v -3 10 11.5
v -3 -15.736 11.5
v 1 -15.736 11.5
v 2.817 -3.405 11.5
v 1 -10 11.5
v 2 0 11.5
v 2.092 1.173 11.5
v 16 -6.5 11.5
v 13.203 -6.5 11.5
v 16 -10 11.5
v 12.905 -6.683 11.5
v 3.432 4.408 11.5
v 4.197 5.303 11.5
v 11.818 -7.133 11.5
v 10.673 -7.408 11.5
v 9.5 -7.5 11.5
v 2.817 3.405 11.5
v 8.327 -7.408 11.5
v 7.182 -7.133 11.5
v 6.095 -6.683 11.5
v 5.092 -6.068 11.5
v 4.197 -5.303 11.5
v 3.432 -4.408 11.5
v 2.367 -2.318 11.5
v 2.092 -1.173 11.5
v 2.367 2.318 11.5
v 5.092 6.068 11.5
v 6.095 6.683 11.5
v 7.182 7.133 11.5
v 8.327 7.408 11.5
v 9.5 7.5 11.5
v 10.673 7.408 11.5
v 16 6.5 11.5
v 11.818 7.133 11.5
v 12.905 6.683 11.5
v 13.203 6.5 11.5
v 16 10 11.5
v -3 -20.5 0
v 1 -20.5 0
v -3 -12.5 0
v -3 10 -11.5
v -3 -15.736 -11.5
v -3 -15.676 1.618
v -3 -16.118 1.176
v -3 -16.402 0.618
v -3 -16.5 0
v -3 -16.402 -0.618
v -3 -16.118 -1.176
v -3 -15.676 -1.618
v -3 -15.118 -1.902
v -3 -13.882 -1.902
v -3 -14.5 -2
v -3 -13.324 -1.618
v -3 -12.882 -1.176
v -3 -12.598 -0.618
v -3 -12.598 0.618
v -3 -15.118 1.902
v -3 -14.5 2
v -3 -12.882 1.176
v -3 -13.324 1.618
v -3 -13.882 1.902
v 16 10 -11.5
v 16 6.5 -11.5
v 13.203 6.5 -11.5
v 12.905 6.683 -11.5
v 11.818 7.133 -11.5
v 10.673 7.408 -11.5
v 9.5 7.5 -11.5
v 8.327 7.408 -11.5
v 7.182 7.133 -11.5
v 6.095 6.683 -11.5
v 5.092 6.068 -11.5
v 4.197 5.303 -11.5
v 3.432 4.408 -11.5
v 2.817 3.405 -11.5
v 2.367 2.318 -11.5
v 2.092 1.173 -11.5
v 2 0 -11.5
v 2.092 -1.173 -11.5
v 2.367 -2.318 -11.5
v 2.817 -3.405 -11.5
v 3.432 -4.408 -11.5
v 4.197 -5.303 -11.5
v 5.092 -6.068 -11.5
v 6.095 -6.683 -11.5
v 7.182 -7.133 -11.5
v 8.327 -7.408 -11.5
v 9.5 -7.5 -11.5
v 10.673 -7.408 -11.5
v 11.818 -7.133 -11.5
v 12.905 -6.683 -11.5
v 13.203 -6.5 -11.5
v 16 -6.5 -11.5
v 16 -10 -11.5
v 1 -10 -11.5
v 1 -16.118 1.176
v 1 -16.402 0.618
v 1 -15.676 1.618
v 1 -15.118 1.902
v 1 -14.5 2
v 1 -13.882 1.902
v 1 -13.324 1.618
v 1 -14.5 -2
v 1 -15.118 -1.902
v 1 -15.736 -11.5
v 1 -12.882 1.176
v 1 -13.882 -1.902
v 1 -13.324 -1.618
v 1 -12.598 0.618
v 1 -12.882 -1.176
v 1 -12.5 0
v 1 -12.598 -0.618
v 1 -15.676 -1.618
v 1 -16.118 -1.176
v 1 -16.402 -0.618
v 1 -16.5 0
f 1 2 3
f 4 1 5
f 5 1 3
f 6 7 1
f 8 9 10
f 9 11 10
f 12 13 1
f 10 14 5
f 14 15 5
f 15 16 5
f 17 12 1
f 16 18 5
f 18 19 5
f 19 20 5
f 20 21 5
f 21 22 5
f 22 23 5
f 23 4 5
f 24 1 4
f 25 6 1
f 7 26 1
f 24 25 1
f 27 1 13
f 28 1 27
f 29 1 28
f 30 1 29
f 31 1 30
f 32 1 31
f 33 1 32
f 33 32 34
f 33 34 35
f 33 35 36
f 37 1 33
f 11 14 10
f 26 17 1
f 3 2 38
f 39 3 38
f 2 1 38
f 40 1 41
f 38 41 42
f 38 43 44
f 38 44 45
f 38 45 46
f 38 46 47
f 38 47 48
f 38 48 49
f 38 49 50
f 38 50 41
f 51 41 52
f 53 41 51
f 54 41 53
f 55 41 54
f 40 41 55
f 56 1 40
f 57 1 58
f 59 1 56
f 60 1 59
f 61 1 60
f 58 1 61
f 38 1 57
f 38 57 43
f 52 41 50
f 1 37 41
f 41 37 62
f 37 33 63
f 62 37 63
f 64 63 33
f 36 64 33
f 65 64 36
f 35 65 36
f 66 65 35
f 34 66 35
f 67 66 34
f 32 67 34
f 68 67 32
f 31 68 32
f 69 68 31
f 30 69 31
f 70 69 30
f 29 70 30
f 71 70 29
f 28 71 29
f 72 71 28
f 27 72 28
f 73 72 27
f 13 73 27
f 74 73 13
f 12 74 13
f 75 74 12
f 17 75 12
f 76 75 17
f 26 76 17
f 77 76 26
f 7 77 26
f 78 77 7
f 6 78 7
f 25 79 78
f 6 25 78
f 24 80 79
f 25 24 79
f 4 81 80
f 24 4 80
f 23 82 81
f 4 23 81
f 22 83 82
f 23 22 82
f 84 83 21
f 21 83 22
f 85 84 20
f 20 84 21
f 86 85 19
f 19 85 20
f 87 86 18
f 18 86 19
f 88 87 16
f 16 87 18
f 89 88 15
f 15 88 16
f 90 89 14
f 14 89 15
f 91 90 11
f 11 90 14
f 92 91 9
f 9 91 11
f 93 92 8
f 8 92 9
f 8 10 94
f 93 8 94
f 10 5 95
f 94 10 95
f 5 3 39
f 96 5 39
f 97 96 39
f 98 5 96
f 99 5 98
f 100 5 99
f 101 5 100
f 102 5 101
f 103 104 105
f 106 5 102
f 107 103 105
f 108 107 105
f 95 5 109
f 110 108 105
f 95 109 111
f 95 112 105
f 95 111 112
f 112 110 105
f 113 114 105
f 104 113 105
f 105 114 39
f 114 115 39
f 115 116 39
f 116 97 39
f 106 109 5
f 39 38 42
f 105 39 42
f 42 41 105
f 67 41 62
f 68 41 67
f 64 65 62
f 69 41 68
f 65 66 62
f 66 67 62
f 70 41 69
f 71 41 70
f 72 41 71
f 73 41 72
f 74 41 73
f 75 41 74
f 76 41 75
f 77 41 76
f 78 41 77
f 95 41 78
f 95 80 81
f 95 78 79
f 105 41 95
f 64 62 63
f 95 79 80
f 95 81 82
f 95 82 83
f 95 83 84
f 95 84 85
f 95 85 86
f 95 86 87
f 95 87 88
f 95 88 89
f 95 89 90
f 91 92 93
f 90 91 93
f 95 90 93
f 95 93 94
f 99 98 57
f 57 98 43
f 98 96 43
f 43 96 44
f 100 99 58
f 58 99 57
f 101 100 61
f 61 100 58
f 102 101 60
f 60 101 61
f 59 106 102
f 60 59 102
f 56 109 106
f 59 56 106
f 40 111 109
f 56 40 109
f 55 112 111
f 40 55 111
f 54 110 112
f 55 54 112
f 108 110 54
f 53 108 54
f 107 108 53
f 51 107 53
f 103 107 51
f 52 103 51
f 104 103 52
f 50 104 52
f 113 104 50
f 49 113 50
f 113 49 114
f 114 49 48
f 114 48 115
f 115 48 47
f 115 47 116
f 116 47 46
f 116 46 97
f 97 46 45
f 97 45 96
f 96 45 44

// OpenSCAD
// LM8UU bushing holder modified for its use in Cyclone PCB Factory
// Modified to have only one center screw

// Derived by Carlosgs from:

// LM8UU bushing holder
// http://www.thingiverse.com/thing:23041 by thantik
// Inspired/derived from:

//http://www.thingiverse.com/thing:14942
//Which is derived from:
// http://www.thingiverse.com/thing:14814
//And is a drop-in replacement for:
//http://www.thingiverse.com/thing:10287

// screw/nut dimensions
screw_dia = 4;
nut_dia = 8.5;
nut_height=2;

// main body dimensions
body_width = 20;
gap_width = 14;
body_height = 16;
body_length=23;
LM8UU_dia = 15.0;
screw_elevation = body_height-1.5;

//mounting plate dimensions
plate_height = 4;
plate_length=body_length;
plate_width=body_width+11;
screw_space_x = -14.5*2;
screw_space_y = 0;

module mount_plate()
{
	difference()
	{
		//bottom plate
		translate([-plate_width+body_width/2,-plate_length/2,-3])
			cube([plate_width,plate_length,plate_height]);

		//screw holes
		translate([screw_space_x/2,screw_space_y/2,-8.1])
			cylinder(r=screw_dia/2, h=plate_height+10, $fn=20);
//		translate([-screw_space_x/2,-screw_space_y/2,-8.1])
//			cylinder(r=screw_dia/2, h=plate_height+1, $fn=20);

		//nut traps


	}
}

module lm8uu_bearing_holder() {
	intersection() {
     rotate([90,0,90])
      difference()
		{
			union()
			{
				mount_plate();
		
				translate([-body_width/2,-body_length/2,0])
					cube([body_width,body_length,body_height]);
			}
		
			// bushing hole
			translate([0,0,LM8UU_dia/2+2])
				rotate([90,0,0])
					cylinder(r=LM8UU_dia/2, h=body_length+0.1, center=true, $fn=40);
		
			// top gap
			translate([0,0,20])
				cube([gap_width-1,body_length+0.1,20],center=true);
		}
	   rotate([90,45,90])
	     //cube([plate_width+3,plate_width+3,100],center=true);
	     cylinder(r=(plate_width+10)/2,h=100,center=true,$fn=8);
	}
}

lm8uu_bearing_holder();
